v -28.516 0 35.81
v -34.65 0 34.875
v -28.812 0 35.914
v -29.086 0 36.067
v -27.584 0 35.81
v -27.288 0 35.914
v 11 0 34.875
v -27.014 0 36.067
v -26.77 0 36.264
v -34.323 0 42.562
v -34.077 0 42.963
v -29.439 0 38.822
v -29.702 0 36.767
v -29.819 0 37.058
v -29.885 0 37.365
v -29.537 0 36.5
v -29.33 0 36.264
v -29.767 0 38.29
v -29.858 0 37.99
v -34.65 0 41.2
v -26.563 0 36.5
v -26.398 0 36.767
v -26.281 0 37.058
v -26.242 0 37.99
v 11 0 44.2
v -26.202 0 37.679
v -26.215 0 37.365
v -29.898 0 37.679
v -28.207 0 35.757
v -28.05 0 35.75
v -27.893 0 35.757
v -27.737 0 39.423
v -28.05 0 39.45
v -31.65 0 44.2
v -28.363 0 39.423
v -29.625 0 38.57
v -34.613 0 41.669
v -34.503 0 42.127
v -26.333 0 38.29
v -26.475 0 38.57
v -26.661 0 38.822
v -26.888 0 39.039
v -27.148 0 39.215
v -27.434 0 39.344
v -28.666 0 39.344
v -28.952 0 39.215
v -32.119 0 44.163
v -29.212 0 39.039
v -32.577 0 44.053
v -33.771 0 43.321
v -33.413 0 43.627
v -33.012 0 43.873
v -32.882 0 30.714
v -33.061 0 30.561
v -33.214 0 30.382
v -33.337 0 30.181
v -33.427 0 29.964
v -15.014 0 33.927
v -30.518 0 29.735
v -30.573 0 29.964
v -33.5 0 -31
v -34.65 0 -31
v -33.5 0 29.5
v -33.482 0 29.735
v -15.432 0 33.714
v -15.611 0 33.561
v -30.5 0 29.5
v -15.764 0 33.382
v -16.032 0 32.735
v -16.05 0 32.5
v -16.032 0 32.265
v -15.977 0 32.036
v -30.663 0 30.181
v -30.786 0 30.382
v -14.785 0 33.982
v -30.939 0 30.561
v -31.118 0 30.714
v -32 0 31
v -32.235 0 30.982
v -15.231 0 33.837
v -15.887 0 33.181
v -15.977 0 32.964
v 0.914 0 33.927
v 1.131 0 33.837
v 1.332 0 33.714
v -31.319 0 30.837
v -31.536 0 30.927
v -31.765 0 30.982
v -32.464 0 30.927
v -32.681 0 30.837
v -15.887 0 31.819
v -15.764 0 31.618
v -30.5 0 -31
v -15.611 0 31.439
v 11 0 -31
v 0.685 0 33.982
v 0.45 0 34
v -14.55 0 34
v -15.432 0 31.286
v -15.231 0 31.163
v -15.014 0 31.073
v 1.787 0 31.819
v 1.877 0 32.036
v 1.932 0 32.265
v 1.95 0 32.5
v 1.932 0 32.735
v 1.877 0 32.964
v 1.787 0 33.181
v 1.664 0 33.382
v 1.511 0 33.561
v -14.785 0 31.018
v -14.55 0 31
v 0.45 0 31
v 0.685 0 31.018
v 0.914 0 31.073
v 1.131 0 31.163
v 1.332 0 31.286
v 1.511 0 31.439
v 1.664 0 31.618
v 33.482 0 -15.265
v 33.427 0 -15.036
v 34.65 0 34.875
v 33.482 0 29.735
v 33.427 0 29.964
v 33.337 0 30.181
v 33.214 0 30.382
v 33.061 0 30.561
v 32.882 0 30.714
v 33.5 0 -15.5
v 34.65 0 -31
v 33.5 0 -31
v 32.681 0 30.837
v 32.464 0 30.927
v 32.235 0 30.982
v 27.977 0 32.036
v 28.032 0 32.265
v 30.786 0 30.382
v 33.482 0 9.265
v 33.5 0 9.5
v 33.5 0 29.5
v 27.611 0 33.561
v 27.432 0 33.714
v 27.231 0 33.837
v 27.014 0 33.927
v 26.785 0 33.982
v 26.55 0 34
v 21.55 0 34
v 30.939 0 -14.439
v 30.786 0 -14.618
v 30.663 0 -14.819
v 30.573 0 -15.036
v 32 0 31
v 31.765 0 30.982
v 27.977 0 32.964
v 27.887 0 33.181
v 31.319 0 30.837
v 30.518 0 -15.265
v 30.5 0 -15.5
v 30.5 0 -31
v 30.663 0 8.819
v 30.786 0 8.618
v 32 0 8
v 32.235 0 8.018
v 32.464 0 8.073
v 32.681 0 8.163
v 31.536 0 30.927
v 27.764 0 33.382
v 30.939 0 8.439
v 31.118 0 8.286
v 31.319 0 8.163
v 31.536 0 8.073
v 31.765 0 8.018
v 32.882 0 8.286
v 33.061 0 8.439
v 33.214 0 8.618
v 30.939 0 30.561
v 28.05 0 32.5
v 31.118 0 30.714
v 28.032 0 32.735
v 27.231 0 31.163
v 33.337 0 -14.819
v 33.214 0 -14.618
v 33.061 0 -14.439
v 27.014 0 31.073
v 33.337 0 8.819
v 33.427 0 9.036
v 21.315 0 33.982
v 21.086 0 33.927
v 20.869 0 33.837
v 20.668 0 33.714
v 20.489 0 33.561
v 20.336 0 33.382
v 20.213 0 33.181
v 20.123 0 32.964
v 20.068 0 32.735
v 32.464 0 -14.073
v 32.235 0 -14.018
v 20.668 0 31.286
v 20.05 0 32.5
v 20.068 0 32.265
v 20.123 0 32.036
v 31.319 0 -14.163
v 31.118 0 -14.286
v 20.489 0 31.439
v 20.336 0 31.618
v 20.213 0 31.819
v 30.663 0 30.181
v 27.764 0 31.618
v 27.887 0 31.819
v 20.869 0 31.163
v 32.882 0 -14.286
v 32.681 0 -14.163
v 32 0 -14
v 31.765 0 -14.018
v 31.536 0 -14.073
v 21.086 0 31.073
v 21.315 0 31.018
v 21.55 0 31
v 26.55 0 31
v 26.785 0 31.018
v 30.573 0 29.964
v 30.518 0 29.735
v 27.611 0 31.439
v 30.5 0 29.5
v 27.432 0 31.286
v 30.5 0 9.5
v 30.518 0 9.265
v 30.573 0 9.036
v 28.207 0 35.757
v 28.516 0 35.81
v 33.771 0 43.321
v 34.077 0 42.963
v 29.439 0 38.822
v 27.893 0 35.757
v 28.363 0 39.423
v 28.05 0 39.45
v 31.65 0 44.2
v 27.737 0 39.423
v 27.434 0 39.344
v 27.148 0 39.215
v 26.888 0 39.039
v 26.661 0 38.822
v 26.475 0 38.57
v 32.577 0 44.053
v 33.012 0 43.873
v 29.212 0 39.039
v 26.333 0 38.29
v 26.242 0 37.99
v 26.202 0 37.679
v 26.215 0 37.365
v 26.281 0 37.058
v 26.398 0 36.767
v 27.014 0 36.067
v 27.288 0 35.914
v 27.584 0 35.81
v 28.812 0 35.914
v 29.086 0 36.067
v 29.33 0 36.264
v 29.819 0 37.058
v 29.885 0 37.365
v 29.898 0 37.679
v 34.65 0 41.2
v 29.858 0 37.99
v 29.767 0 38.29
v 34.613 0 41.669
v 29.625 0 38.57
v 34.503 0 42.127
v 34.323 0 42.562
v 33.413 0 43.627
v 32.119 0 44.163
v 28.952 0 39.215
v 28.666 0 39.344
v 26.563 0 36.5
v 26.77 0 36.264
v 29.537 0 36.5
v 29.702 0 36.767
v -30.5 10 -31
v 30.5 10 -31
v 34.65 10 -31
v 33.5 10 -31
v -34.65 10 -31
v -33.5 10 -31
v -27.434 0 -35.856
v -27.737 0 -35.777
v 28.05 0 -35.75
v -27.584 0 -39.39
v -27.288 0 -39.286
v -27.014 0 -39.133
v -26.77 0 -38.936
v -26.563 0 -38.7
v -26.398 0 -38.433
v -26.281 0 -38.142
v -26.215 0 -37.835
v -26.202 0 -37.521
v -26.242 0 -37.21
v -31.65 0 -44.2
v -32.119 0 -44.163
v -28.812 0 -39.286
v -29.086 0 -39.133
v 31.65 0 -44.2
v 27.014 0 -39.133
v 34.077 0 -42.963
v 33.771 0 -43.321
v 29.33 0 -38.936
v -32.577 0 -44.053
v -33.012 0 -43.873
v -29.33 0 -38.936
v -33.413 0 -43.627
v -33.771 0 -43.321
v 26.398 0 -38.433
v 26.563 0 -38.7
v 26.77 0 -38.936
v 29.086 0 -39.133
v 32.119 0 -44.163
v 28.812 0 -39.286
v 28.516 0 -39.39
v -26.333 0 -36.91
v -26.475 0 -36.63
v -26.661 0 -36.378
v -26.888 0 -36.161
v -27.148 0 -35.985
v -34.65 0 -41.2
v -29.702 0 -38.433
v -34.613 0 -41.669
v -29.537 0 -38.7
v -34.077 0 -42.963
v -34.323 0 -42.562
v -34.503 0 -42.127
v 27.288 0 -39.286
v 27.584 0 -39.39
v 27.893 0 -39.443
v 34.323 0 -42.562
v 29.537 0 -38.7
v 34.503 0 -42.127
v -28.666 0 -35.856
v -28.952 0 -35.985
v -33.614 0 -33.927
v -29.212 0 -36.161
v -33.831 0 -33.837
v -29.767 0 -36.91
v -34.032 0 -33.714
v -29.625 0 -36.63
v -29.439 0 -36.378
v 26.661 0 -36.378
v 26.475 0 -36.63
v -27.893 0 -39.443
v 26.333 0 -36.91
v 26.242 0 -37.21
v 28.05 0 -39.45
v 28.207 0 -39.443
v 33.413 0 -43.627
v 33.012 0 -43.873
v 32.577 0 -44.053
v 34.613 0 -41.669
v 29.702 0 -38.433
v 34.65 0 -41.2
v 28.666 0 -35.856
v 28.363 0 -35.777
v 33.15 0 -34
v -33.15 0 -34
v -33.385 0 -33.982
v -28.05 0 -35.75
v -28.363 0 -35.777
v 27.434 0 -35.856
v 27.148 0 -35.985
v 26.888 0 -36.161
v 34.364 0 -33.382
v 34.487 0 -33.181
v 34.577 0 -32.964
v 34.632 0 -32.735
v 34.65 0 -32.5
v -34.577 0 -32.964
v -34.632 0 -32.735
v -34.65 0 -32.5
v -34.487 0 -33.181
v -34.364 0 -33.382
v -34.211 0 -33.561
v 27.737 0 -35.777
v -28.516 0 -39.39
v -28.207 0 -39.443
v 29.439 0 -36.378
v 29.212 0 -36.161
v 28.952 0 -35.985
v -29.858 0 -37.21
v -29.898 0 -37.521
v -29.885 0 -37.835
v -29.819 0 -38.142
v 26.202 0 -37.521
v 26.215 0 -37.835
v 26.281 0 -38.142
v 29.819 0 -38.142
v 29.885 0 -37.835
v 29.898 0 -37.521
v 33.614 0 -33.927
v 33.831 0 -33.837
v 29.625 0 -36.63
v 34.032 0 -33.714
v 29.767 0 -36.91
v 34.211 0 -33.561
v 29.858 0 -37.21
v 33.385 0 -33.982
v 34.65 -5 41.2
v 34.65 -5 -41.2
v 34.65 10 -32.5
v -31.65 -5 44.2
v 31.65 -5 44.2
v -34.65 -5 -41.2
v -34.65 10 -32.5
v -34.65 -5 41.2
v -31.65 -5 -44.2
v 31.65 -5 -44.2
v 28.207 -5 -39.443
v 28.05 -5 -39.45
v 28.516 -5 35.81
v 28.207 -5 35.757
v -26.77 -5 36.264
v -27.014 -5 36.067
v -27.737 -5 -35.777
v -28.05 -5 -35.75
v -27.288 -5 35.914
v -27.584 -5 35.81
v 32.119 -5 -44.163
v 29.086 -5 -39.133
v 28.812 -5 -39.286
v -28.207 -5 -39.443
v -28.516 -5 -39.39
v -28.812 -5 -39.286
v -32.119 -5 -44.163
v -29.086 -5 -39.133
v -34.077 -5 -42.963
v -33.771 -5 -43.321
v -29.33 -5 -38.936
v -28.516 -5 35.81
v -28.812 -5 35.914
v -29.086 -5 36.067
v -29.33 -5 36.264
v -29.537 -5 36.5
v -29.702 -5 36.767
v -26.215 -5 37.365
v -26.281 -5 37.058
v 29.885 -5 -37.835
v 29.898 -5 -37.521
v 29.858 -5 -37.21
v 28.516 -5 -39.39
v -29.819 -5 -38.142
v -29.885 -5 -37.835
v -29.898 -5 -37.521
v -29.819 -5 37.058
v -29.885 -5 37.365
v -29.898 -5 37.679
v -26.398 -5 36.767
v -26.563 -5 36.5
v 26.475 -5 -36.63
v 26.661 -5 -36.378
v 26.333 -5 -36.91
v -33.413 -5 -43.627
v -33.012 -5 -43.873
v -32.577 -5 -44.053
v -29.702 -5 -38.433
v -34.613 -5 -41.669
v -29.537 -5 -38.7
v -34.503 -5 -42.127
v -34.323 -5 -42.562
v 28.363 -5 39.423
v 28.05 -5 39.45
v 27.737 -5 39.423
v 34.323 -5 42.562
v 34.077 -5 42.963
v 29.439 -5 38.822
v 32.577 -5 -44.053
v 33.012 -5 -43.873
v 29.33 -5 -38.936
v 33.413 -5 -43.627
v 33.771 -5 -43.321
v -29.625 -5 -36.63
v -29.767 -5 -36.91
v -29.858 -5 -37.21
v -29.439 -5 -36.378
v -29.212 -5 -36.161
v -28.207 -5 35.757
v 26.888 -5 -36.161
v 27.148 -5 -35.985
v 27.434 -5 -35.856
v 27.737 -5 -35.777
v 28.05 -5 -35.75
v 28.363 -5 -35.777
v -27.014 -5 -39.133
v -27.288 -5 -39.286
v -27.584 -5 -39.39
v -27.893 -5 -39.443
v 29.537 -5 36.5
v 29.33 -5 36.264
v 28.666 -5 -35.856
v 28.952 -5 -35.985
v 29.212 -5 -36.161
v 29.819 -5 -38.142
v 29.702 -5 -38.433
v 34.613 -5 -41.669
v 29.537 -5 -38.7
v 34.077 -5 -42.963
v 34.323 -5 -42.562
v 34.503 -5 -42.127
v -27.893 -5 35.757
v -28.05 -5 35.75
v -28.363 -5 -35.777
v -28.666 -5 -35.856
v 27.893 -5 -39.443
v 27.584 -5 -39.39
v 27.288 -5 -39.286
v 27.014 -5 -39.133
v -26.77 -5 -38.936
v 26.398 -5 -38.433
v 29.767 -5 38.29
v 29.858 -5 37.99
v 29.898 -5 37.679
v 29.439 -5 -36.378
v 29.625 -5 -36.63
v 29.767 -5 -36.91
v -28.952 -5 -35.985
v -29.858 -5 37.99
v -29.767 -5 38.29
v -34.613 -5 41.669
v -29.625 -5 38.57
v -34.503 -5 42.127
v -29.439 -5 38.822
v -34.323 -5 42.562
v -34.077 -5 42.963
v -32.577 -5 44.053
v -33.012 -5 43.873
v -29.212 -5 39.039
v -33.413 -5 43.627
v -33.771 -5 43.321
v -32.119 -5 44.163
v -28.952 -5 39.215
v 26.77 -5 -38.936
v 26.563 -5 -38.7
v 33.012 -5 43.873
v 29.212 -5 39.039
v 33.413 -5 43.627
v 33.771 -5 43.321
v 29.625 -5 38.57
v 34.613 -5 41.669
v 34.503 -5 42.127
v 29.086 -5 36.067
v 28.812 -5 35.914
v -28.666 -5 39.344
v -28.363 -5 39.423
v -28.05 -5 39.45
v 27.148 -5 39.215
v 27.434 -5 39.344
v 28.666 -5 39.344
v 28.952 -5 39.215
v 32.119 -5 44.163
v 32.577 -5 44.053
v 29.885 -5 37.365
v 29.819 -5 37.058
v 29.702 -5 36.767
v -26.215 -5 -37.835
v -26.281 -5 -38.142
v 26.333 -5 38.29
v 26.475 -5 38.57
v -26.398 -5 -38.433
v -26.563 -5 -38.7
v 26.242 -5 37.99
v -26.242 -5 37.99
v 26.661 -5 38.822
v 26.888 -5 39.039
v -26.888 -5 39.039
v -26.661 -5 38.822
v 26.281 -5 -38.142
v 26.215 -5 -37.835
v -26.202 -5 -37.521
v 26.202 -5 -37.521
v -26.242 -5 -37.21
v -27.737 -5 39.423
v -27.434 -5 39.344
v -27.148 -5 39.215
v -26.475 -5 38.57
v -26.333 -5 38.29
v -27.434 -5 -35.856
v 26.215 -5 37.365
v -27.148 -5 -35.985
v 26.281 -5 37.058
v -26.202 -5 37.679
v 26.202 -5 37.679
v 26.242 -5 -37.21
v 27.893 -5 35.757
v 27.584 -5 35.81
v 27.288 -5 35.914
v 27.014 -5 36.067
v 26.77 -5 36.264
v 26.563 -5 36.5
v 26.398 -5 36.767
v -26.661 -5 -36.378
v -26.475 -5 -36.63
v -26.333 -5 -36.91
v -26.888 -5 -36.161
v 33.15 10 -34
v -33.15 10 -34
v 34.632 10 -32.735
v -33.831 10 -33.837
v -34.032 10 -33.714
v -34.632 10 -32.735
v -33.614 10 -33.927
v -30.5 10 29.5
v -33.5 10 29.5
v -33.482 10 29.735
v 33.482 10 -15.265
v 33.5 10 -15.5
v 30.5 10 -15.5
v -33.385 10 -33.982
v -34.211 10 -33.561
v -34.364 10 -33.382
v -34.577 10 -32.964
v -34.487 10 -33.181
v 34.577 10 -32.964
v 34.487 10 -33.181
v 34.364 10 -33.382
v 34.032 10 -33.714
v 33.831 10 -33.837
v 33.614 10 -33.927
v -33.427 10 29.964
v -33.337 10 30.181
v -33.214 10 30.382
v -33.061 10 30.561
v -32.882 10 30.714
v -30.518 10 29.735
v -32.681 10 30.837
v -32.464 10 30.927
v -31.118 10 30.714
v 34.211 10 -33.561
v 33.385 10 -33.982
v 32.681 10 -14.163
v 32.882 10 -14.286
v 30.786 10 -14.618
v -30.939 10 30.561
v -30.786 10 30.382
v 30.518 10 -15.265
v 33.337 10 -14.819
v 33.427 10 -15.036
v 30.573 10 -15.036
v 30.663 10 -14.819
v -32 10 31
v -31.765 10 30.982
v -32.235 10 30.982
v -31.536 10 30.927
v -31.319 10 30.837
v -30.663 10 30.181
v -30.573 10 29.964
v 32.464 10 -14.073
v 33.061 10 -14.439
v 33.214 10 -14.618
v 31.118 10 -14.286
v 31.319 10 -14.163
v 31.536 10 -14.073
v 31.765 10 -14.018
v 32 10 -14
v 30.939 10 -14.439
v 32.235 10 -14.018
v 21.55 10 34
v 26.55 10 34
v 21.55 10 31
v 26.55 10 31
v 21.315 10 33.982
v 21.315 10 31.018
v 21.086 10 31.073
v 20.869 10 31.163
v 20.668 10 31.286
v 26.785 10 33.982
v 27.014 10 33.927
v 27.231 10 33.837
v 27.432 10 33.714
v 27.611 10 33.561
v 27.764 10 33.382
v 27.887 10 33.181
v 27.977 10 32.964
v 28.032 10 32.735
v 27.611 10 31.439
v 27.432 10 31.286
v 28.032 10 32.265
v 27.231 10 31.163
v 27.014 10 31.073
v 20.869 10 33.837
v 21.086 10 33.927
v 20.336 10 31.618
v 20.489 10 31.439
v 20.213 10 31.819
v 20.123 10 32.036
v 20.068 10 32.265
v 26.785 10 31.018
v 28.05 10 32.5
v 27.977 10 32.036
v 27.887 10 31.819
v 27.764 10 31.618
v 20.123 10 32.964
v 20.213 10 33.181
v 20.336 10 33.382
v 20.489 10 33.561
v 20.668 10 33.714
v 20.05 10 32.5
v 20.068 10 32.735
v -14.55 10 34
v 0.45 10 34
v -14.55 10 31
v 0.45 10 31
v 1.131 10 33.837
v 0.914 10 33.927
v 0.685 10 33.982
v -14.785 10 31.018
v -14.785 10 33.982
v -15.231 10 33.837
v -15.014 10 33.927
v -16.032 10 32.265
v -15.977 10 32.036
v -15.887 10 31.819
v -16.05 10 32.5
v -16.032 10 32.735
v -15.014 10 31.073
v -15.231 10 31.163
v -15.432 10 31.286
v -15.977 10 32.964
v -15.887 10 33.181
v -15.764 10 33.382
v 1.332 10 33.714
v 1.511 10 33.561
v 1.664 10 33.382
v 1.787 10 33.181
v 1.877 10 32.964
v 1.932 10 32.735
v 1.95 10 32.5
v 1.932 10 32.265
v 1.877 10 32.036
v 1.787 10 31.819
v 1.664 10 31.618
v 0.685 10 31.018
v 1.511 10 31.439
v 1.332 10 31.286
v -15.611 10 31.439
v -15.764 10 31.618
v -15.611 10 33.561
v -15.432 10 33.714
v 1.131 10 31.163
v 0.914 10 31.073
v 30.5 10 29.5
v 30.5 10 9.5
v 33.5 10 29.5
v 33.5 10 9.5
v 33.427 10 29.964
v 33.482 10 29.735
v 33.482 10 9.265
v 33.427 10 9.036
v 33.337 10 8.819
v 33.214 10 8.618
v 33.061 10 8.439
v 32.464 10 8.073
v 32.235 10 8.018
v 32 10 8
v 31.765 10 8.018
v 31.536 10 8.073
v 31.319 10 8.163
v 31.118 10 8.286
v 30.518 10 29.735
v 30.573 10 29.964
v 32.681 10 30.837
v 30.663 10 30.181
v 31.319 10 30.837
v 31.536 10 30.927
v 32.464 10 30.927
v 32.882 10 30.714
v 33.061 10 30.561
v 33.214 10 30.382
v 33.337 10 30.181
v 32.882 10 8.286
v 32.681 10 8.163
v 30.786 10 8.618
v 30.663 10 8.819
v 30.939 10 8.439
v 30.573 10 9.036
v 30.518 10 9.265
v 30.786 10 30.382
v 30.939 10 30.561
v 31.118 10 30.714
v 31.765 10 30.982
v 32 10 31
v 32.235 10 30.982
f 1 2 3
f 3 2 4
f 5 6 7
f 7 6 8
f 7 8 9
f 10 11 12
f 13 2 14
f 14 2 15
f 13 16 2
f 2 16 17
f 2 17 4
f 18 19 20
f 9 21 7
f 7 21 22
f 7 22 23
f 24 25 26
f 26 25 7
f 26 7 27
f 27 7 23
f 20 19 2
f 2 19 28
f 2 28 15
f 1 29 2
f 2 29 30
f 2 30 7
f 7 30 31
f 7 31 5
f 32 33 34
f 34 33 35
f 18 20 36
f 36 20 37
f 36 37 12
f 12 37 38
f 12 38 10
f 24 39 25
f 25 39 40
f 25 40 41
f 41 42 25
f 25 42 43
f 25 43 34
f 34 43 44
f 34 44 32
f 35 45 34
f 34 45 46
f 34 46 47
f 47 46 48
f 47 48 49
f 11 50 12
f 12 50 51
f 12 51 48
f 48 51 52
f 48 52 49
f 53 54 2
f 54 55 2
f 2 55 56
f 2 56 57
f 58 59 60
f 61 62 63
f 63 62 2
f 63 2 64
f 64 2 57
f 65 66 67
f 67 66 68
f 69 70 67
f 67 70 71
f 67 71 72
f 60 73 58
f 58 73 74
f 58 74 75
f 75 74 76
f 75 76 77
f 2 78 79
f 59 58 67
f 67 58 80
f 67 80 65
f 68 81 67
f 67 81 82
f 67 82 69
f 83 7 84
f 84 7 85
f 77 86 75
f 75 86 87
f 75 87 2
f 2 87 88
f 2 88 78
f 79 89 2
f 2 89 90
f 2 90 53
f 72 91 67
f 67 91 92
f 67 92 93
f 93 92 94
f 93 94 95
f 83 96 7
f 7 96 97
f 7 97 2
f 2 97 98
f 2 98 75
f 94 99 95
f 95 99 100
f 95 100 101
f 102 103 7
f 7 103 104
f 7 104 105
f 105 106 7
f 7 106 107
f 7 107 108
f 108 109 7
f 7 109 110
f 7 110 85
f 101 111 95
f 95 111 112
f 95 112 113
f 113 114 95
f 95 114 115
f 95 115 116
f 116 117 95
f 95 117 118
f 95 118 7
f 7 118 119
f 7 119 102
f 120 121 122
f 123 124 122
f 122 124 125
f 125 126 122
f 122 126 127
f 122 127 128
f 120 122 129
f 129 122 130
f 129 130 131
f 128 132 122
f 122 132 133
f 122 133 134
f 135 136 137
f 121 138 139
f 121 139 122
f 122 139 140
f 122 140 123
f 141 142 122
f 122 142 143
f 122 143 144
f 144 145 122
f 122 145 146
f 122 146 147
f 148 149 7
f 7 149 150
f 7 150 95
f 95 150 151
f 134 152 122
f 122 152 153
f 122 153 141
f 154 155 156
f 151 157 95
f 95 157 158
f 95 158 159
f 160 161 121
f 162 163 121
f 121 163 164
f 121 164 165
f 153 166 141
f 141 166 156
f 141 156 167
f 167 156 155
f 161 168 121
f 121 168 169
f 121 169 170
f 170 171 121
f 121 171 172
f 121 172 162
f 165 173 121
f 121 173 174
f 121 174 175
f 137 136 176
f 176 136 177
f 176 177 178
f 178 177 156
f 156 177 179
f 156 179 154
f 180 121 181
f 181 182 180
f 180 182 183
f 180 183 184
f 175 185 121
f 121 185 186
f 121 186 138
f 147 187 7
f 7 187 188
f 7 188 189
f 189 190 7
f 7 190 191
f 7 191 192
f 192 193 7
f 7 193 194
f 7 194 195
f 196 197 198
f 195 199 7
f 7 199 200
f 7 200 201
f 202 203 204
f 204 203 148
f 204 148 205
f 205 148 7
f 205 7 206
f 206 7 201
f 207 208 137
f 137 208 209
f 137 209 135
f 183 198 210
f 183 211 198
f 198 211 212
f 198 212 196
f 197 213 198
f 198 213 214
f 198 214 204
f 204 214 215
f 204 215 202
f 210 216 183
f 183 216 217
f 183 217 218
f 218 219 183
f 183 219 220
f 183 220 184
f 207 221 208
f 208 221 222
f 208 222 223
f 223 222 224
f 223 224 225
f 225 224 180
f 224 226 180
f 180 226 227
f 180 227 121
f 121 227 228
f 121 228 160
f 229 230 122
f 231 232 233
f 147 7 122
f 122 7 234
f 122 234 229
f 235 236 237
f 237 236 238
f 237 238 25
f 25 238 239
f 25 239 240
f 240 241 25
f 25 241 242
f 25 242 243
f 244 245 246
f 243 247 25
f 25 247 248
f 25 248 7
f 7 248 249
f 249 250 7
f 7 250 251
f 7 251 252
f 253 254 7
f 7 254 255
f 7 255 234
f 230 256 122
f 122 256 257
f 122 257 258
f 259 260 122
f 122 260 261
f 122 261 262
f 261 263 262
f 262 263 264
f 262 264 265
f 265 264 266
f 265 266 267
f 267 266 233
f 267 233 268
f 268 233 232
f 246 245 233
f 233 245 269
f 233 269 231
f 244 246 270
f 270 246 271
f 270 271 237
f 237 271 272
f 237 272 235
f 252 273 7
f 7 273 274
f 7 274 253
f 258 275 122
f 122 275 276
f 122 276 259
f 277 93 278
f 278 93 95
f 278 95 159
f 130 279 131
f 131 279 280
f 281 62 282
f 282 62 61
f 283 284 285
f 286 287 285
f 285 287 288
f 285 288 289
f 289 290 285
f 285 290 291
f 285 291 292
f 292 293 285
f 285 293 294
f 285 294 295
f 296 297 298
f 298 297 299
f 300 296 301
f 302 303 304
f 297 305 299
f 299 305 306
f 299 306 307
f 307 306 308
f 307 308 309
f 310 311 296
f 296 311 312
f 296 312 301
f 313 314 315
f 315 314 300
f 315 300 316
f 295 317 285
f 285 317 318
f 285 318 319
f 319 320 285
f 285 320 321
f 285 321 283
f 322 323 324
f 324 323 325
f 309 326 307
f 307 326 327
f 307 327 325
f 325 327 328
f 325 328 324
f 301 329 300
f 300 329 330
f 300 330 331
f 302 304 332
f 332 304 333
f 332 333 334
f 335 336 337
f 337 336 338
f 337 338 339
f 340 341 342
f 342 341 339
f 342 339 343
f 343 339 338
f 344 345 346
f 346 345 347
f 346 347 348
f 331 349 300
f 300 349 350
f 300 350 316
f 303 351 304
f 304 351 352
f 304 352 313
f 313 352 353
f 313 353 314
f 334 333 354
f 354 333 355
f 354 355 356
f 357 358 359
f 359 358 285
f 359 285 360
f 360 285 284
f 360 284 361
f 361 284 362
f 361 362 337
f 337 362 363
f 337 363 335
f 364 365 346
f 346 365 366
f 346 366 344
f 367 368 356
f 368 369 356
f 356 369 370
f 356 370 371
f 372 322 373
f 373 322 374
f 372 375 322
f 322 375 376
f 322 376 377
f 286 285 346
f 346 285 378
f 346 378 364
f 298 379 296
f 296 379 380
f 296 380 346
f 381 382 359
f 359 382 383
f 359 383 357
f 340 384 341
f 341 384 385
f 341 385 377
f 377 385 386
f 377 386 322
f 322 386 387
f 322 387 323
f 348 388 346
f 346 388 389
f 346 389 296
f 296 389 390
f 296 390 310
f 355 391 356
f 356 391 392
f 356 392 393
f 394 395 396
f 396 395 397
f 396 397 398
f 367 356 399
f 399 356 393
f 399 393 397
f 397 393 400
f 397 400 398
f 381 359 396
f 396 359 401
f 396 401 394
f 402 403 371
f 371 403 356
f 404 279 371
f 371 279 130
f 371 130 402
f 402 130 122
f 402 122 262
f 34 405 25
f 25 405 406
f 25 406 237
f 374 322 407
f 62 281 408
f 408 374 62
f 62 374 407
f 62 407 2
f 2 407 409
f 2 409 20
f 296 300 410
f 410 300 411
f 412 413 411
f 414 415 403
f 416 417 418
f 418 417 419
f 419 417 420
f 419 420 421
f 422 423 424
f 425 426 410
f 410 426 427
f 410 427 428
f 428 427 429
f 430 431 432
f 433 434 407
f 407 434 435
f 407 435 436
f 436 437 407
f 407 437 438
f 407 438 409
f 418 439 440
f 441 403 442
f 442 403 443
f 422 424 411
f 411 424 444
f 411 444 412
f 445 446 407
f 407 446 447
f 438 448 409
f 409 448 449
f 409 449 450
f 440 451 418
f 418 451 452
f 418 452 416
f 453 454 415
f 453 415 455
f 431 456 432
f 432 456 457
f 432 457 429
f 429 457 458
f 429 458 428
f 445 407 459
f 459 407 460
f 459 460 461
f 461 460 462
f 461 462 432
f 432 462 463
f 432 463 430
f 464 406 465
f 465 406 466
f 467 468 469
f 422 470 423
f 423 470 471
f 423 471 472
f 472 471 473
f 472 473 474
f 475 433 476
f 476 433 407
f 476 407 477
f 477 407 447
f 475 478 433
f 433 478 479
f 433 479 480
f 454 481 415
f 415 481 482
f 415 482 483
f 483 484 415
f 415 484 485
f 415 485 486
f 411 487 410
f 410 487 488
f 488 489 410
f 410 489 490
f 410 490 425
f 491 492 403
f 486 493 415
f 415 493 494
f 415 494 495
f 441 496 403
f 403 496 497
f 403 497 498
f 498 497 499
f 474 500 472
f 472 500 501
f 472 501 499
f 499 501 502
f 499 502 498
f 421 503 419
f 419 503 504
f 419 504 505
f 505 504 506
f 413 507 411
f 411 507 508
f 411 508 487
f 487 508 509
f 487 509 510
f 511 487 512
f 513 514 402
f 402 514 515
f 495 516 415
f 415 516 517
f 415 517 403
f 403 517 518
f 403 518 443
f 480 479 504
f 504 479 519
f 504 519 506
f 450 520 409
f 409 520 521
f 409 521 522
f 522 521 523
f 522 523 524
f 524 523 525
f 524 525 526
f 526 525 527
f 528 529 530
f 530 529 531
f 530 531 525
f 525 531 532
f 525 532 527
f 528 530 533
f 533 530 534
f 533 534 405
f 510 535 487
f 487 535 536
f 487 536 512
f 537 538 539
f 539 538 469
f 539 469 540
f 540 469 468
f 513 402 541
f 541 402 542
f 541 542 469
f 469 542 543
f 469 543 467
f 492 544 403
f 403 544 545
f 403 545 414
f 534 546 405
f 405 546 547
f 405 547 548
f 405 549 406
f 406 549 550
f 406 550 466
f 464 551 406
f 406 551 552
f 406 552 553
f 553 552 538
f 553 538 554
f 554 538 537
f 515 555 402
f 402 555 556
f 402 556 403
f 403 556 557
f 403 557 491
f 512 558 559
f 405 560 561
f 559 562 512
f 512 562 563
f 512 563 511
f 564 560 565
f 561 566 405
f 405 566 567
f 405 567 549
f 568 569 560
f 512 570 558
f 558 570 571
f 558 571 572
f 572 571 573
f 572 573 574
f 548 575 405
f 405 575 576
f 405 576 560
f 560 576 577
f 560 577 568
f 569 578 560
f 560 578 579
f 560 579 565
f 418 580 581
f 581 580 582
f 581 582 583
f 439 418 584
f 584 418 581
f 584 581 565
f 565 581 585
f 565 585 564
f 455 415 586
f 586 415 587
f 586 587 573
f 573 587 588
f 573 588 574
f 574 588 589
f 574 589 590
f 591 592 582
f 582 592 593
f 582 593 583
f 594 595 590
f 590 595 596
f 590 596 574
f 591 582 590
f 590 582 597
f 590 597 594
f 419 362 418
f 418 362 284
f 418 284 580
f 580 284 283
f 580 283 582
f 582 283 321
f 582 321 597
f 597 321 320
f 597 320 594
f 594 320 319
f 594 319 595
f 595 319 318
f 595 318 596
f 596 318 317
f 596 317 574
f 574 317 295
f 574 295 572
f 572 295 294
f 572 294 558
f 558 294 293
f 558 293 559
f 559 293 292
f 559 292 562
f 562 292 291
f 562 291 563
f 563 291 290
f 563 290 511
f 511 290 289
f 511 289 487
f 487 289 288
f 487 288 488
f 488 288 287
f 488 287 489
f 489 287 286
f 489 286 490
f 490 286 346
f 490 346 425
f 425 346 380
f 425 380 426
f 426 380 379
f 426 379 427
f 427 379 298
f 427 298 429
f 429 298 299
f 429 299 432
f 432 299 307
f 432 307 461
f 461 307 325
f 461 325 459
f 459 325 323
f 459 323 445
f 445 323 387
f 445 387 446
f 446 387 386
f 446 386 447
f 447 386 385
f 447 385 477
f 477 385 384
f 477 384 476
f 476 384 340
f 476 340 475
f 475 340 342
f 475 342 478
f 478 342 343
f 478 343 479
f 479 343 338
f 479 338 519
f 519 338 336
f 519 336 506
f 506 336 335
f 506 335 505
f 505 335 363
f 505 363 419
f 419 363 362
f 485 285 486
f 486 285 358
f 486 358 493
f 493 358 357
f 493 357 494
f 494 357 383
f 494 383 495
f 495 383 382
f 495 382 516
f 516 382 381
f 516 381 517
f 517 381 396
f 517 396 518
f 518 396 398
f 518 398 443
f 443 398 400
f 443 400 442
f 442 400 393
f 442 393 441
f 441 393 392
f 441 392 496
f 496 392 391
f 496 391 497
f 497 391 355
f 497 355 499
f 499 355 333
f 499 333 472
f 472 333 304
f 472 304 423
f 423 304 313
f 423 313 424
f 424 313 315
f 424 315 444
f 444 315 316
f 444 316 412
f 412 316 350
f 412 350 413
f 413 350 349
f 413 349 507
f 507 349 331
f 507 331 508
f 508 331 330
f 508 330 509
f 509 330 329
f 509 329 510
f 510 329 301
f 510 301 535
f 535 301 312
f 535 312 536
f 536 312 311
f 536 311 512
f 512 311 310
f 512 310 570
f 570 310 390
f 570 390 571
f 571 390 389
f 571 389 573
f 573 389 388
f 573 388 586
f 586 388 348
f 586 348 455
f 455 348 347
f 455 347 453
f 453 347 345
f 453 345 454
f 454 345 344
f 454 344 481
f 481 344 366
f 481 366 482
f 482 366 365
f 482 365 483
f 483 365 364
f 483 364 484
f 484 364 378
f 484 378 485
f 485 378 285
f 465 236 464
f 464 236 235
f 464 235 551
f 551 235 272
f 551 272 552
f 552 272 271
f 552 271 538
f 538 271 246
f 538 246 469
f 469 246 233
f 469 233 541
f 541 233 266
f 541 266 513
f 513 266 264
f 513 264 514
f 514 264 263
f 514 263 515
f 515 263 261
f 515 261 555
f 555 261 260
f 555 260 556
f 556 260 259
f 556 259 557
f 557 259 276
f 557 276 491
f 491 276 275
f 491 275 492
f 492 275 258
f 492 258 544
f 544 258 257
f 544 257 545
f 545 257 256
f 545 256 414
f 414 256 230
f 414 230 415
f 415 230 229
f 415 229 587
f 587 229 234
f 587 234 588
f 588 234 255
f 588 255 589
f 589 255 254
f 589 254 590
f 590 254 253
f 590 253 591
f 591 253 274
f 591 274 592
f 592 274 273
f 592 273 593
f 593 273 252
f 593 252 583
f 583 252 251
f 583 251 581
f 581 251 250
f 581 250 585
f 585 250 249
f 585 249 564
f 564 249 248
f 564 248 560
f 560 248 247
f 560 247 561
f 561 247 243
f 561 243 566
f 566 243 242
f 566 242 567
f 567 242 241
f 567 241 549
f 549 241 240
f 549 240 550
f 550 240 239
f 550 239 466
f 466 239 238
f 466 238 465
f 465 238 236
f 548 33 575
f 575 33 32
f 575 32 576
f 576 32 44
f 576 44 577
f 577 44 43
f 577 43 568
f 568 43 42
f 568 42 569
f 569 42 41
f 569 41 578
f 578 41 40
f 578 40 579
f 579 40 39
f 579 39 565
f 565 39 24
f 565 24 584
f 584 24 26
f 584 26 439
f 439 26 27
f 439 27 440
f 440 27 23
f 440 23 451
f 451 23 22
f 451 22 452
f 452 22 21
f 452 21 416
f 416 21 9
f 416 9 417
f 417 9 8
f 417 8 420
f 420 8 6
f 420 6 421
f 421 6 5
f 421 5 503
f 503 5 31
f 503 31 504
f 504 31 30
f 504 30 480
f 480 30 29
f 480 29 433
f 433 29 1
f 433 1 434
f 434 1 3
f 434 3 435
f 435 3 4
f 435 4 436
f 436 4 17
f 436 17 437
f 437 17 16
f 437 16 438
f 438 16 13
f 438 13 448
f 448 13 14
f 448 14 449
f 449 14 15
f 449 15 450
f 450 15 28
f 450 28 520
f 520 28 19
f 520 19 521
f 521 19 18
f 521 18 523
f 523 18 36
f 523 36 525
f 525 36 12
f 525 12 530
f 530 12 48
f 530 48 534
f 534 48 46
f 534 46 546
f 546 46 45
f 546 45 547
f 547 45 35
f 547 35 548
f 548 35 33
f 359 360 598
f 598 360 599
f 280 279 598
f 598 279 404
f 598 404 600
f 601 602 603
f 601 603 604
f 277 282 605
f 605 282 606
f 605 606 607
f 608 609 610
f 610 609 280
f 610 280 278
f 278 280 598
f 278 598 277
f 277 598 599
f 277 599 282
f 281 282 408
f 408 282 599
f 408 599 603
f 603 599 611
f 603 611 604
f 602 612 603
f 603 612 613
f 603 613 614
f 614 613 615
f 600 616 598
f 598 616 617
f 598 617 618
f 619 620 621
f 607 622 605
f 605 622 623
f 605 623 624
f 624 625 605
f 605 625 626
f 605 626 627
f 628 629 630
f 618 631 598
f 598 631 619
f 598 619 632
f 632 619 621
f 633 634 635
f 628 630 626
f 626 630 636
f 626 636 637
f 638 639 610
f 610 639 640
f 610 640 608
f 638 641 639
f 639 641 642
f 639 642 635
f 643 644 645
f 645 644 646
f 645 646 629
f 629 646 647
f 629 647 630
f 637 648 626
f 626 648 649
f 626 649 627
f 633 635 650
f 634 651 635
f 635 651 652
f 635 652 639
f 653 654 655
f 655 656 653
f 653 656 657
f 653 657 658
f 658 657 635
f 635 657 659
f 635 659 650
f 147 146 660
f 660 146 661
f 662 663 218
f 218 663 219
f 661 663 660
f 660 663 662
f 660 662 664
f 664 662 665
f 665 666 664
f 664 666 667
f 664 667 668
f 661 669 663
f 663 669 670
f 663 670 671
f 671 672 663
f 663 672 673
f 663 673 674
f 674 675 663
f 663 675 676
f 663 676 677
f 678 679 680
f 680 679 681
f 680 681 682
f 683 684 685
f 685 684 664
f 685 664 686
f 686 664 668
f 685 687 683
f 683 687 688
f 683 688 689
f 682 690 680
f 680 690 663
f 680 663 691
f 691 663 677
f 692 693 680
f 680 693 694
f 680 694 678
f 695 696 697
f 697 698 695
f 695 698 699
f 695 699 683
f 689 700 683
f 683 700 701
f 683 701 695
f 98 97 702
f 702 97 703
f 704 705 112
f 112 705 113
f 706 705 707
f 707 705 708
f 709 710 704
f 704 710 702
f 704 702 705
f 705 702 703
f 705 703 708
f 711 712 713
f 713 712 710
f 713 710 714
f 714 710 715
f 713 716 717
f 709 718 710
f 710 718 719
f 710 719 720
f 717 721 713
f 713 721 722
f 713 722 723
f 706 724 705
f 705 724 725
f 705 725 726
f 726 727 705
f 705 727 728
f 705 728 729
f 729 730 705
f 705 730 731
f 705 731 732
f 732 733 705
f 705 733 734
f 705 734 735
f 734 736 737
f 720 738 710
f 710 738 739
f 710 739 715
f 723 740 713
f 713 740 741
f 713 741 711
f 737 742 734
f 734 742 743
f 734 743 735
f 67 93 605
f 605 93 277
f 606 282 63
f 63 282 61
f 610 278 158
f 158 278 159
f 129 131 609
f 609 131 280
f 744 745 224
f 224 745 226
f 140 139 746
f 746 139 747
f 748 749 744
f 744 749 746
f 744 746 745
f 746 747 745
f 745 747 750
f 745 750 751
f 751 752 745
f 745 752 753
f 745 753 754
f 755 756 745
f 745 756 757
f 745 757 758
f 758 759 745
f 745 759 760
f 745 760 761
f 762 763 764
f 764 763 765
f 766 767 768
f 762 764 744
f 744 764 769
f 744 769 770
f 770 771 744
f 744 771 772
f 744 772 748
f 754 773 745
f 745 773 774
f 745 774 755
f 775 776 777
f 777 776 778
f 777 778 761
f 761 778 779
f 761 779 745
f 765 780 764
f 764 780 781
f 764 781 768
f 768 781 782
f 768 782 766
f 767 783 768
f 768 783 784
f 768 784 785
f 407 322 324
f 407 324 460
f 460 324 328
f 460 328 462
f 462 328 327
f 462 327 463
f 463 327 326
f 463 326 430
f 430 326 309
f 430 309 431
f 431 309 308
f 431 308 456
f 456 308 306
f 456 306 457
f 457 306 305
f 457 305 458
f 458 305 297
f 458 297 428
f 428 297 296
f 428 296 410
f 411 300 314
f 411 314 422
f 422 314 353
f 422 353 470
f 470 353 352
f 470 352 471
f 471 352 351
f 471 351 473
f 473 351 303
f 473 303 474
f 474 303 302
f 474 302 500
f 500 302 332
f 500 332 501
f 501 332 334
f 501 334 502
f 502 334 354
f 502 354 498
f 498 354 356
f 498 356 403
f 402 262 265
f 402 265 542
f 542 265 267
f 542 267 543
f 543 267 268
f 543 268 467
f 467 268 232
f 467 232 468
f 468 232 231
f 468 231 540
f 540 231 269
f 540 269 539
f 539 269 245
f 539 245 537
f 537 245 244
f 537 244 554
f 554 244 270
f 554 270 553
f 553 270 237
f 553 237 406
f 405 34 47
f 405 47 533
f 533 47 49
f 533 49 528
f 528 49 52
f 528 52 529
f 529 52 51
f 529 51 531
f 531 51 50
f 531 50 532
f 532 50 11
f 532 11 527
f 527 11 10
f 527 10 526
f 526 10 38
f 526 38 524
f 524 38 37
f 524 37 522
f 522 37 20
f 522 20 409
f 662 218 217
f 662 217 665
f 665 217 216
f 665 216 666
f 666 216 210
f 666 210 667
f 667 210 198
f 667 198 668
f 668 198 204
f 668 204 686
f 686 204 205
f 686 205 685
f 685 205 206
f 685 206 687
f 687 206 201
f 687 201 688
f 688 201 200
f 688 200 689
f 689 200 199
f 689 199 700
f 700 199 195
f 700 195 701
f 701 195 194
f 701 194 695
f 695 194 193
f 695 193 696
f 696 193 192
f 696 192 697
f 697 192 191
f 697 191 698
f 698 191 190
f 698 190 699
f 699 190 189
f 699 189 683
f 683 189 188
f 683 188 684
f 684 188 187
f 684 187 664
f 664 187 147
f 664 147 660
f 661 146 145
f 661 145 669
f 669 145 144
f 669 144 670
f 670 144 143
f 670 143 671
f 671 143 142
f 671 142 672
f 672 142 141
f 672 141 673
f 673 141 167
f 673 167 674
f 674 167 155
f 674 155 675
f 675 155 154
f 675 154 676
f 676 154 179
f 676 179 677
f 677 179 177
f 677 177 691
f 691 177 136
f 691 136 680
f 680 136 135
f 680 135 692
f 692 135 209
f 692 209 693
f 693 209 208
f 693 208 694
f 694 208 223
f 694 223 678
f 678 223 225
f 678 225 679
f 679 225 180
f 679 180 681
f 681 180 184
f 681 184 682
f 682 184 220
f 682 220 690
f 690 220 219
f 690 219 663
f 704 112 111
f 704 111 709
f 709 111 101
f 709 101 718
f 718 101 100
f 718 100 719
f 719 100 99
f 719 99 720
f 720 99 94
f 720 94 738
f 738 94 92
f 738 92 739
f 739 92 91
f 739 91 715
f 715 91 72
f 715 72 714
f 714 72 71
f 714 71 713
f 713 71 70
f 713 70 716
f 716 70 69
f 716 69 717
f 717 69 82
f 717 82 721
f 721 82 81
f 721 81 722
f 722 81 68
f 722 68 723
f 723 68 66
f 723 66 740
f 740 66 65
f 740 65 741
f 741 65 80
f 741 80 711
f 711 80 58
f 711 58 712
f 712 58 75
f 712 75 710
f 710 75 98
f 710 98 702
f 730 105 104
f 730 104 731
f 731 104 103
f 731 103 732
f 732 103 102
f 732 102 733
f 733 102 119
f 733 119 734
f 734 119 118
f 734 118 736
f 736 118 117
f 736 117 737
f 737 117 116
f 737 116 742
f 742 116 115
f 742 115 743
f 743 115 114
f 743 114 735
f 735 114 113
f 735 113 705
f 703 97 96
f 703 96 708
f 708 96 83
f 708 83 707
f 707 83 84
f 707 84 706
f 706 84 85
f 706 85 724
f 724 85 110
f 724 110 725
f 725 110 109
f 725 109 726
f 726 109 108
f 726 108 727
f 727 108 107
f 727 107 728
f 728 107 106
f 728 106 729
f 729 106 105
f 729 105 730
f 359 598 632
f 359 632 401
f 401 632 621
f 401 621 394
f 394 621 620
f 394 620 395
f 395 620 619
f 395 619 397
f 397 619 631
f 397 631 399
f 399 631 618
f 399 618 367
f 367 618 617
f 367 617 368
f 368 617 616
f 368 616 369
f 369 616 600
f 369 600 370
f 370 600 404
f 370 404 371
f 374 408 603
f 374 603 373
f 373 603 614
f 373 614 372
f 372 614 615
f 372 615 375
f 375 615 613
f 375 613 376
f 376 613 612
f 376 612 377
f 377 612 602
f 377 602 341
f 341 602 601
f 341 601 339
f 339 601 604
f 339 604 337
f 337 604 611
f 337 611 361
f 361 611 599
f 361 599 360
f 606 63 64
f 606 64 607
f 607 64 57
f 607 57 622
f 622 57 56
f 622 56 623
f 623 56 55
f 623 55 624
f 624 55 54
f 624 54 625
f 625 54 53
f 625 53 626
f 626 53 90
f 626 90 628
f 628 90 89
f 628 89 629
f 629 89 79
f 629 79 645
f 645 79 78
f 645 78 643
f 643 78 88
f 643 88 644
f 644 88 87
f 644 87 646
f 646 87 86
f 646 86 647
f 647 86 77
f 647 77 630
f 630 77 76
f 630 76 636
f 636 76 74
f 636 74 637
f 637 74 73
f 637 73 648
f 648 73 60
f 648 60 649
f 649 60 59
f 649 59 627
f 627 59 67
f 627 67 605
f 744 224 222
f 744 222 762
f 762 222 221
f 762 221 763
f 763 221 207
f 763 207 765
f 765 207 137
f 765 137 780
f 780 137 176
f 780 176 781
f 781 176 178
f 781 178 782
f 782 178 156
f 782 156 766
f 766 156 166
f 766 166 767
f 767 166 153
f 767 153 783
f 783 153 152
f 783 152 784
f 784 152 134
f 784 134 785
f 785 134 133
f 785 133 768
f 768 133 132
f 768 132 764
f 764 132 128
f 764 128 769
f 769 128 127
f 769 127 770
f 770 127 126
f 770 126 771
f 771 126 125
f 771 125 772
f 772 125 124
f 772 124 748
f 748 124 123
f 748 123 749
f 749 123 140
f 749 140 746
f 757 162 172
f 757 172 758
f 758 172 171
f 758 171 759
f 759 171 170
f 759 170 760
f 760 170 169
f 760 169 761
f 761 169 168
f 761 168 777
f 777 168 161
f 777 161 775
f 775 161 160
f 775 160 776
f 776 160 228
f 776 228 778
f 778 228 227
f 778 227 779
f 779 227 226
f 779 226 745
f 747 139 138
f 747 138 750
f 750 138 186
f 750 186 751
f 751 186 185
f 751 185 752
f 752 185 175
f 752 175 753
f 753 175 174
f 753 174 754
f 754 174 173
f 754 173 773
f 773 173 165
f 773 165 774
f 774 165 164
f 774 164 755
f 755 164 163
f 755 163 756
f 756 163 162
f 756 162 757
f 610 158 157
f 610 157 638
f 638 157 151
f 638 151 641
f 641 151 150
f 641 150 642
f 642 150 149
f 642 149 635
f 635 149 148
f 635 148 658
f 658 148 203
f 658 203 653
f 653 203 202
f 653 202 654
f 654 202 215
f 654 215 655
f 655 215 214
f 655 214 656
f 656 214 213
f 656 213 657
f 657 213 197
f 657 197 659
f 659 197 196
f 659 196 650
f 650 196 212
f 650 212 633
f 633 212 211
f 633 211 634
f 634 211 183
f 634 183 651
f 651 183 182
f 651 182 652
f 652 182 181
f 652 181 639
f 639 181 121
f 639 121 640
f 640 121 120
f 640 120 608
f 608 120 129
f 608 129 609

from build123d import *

# Parameters (mm, degrees)
SKETCH_1_W      = 69.3
SKETCH_1_H      = 88.4
SKETCH_1_R      = 1.85
EXTRUDE_1_DEPTH = 5
SKETCH_3_W      = 69.3
SKETCH_3_H      = 3
SKETCH_3_W_2    = 8
SKETCH_3_W_3    = 18
EXTRUDE_2_DEPTH = 10
SKETCH_4_W      = 3
SKETCH_4_H      = 62
SKETCH_4_H_2    = 17
SKETCH_4_H_3    = 23
EXTRUDE_3_DEPTH = 10
FILLET_1_R      = 3
FILLET_2_R      = 1.5
FILLET_3_R      = 1.5


with BuildPart() as part:
    # 草图1 → 凸台-拉伸1 (new body)
    with BuildSketch(Plane(origin=(0, 0, 0), x_dir=(1, 0, 0), z_dir=(0, 1, 0))):
        Rectangle(SKETCH_1_W, SKETCH_1_H)
        with Locations(Location((-28.05, 37.6, 0), (0, 0, 270))):
            Circle(SKETCH_1_R, mode=Mode.SUBTRACT)
        with Locations(Location((28.05, 37.6, 0), (0, 0, 90))):
            Circle(SKETCH_1_R, mode=Mode.SUBTRACT)
        with Locations(Location((28.05, -37.6, 0), (0, 0, 270))):
            Circle(SKETCH_1_R, mode=Mode.SUBTRACT)
        with Locations(Location((-28.05, -37.6, 0), (0, 0, 90))):
            Circle(SKETCH_1_R, mode=Mode.SUBTRACT)
    extrude(amount=-EXTRUDE_1_DEPTH)

    # 草图3 → 凸台-拉伸2 (add)
    with BuildSketch(Plane(origin=(0, 0, 0), x_dir=(1, 0, 0), z_dir=(0, 1, 0))):
        with Locations((0, 32.5)):
            Rectangle(SKETCH_3_W, SKETCH_3_H)
        with Locations((24.05, -32.5)):
            Rectangle(SKETCH_3_W_2, SKETCH_3_H)
        with Locations((-7.05, -32.5)):
            Rectangle(SKETCH_3_W_3, SKETCH_3_H)
    extrude(amount=EXTRUDE_2_DEPTH)

    # 草图4 → 凸台-拉伸3 (add)
    with BuildSketch(Plane(origin=(0, 0, 0), x_dir=(1, 0, 0), z_dir=(0, 1, 0))):
        with Locations((-32, 0)):
            Rectangle(SKETCH_4_W, SKETCH_4_H)
        with Locations((32, 22.5)):
            Rectangle(SKETCH_4_W, SKETCH_4_H_2)
        with Locations((32, -19.5)):
            Rectangle(SKETCH_4_W, SKETCH_4_H_3)
    extrude(amount=EXTRUDE_3_DEPTH)

    # 圆角1
    fillet_1_edges = [part.edges().sort_by_distance(p)[0] for p in [
        (34.65, -2.5, 44.2),
        (-34.65, -2.5, 44.2),
        (-34.65, -2.5, -44.2),
        (34.65, -2.5, -44.2),
    ]]
    fillet(fillet_1_edges, radius=FILLET_1_R)

    # 圆角2
    fillet_2_edges = [part.edges().sort_by_distance(p)[0] for p in [
        (20.05, 5, 34),
        (20.05, 5, 31),
        (28.05, 5, 31),
        (28.05, 5, 34),
        (-16.05, 5, 34),
        (-16.05, 5, 31),
        (1.95, 5, 34),
        (1.95, 5, 31),
    ]]
    fillet(fillet_2_edges, radius=FILLET_2_R - 0.0001)  # a hair under: the kernel refuses the full size

    # 圆角3
    fillet_3_edges = [part.edges().sort_by_distance(p)[0] for p in [
        (34.65, 5, -34),
        (-34.65, 5, -34),
        (-30.5, 5, 31),
        (-33.5, 5, 31),
        (33.5, 5, 31),
        (30.5, 5, 31),
        (33.5, 5, 8),
        (30.5, 5, 8),
        (33.5, 5, -14),
        (30.5, 5, -14),
    ]]
    fillet(fillet_3_edges, radius=FILLET_3_R - 0.0001)  # a hair under: the kernel refuses the full size


solid = part.part
